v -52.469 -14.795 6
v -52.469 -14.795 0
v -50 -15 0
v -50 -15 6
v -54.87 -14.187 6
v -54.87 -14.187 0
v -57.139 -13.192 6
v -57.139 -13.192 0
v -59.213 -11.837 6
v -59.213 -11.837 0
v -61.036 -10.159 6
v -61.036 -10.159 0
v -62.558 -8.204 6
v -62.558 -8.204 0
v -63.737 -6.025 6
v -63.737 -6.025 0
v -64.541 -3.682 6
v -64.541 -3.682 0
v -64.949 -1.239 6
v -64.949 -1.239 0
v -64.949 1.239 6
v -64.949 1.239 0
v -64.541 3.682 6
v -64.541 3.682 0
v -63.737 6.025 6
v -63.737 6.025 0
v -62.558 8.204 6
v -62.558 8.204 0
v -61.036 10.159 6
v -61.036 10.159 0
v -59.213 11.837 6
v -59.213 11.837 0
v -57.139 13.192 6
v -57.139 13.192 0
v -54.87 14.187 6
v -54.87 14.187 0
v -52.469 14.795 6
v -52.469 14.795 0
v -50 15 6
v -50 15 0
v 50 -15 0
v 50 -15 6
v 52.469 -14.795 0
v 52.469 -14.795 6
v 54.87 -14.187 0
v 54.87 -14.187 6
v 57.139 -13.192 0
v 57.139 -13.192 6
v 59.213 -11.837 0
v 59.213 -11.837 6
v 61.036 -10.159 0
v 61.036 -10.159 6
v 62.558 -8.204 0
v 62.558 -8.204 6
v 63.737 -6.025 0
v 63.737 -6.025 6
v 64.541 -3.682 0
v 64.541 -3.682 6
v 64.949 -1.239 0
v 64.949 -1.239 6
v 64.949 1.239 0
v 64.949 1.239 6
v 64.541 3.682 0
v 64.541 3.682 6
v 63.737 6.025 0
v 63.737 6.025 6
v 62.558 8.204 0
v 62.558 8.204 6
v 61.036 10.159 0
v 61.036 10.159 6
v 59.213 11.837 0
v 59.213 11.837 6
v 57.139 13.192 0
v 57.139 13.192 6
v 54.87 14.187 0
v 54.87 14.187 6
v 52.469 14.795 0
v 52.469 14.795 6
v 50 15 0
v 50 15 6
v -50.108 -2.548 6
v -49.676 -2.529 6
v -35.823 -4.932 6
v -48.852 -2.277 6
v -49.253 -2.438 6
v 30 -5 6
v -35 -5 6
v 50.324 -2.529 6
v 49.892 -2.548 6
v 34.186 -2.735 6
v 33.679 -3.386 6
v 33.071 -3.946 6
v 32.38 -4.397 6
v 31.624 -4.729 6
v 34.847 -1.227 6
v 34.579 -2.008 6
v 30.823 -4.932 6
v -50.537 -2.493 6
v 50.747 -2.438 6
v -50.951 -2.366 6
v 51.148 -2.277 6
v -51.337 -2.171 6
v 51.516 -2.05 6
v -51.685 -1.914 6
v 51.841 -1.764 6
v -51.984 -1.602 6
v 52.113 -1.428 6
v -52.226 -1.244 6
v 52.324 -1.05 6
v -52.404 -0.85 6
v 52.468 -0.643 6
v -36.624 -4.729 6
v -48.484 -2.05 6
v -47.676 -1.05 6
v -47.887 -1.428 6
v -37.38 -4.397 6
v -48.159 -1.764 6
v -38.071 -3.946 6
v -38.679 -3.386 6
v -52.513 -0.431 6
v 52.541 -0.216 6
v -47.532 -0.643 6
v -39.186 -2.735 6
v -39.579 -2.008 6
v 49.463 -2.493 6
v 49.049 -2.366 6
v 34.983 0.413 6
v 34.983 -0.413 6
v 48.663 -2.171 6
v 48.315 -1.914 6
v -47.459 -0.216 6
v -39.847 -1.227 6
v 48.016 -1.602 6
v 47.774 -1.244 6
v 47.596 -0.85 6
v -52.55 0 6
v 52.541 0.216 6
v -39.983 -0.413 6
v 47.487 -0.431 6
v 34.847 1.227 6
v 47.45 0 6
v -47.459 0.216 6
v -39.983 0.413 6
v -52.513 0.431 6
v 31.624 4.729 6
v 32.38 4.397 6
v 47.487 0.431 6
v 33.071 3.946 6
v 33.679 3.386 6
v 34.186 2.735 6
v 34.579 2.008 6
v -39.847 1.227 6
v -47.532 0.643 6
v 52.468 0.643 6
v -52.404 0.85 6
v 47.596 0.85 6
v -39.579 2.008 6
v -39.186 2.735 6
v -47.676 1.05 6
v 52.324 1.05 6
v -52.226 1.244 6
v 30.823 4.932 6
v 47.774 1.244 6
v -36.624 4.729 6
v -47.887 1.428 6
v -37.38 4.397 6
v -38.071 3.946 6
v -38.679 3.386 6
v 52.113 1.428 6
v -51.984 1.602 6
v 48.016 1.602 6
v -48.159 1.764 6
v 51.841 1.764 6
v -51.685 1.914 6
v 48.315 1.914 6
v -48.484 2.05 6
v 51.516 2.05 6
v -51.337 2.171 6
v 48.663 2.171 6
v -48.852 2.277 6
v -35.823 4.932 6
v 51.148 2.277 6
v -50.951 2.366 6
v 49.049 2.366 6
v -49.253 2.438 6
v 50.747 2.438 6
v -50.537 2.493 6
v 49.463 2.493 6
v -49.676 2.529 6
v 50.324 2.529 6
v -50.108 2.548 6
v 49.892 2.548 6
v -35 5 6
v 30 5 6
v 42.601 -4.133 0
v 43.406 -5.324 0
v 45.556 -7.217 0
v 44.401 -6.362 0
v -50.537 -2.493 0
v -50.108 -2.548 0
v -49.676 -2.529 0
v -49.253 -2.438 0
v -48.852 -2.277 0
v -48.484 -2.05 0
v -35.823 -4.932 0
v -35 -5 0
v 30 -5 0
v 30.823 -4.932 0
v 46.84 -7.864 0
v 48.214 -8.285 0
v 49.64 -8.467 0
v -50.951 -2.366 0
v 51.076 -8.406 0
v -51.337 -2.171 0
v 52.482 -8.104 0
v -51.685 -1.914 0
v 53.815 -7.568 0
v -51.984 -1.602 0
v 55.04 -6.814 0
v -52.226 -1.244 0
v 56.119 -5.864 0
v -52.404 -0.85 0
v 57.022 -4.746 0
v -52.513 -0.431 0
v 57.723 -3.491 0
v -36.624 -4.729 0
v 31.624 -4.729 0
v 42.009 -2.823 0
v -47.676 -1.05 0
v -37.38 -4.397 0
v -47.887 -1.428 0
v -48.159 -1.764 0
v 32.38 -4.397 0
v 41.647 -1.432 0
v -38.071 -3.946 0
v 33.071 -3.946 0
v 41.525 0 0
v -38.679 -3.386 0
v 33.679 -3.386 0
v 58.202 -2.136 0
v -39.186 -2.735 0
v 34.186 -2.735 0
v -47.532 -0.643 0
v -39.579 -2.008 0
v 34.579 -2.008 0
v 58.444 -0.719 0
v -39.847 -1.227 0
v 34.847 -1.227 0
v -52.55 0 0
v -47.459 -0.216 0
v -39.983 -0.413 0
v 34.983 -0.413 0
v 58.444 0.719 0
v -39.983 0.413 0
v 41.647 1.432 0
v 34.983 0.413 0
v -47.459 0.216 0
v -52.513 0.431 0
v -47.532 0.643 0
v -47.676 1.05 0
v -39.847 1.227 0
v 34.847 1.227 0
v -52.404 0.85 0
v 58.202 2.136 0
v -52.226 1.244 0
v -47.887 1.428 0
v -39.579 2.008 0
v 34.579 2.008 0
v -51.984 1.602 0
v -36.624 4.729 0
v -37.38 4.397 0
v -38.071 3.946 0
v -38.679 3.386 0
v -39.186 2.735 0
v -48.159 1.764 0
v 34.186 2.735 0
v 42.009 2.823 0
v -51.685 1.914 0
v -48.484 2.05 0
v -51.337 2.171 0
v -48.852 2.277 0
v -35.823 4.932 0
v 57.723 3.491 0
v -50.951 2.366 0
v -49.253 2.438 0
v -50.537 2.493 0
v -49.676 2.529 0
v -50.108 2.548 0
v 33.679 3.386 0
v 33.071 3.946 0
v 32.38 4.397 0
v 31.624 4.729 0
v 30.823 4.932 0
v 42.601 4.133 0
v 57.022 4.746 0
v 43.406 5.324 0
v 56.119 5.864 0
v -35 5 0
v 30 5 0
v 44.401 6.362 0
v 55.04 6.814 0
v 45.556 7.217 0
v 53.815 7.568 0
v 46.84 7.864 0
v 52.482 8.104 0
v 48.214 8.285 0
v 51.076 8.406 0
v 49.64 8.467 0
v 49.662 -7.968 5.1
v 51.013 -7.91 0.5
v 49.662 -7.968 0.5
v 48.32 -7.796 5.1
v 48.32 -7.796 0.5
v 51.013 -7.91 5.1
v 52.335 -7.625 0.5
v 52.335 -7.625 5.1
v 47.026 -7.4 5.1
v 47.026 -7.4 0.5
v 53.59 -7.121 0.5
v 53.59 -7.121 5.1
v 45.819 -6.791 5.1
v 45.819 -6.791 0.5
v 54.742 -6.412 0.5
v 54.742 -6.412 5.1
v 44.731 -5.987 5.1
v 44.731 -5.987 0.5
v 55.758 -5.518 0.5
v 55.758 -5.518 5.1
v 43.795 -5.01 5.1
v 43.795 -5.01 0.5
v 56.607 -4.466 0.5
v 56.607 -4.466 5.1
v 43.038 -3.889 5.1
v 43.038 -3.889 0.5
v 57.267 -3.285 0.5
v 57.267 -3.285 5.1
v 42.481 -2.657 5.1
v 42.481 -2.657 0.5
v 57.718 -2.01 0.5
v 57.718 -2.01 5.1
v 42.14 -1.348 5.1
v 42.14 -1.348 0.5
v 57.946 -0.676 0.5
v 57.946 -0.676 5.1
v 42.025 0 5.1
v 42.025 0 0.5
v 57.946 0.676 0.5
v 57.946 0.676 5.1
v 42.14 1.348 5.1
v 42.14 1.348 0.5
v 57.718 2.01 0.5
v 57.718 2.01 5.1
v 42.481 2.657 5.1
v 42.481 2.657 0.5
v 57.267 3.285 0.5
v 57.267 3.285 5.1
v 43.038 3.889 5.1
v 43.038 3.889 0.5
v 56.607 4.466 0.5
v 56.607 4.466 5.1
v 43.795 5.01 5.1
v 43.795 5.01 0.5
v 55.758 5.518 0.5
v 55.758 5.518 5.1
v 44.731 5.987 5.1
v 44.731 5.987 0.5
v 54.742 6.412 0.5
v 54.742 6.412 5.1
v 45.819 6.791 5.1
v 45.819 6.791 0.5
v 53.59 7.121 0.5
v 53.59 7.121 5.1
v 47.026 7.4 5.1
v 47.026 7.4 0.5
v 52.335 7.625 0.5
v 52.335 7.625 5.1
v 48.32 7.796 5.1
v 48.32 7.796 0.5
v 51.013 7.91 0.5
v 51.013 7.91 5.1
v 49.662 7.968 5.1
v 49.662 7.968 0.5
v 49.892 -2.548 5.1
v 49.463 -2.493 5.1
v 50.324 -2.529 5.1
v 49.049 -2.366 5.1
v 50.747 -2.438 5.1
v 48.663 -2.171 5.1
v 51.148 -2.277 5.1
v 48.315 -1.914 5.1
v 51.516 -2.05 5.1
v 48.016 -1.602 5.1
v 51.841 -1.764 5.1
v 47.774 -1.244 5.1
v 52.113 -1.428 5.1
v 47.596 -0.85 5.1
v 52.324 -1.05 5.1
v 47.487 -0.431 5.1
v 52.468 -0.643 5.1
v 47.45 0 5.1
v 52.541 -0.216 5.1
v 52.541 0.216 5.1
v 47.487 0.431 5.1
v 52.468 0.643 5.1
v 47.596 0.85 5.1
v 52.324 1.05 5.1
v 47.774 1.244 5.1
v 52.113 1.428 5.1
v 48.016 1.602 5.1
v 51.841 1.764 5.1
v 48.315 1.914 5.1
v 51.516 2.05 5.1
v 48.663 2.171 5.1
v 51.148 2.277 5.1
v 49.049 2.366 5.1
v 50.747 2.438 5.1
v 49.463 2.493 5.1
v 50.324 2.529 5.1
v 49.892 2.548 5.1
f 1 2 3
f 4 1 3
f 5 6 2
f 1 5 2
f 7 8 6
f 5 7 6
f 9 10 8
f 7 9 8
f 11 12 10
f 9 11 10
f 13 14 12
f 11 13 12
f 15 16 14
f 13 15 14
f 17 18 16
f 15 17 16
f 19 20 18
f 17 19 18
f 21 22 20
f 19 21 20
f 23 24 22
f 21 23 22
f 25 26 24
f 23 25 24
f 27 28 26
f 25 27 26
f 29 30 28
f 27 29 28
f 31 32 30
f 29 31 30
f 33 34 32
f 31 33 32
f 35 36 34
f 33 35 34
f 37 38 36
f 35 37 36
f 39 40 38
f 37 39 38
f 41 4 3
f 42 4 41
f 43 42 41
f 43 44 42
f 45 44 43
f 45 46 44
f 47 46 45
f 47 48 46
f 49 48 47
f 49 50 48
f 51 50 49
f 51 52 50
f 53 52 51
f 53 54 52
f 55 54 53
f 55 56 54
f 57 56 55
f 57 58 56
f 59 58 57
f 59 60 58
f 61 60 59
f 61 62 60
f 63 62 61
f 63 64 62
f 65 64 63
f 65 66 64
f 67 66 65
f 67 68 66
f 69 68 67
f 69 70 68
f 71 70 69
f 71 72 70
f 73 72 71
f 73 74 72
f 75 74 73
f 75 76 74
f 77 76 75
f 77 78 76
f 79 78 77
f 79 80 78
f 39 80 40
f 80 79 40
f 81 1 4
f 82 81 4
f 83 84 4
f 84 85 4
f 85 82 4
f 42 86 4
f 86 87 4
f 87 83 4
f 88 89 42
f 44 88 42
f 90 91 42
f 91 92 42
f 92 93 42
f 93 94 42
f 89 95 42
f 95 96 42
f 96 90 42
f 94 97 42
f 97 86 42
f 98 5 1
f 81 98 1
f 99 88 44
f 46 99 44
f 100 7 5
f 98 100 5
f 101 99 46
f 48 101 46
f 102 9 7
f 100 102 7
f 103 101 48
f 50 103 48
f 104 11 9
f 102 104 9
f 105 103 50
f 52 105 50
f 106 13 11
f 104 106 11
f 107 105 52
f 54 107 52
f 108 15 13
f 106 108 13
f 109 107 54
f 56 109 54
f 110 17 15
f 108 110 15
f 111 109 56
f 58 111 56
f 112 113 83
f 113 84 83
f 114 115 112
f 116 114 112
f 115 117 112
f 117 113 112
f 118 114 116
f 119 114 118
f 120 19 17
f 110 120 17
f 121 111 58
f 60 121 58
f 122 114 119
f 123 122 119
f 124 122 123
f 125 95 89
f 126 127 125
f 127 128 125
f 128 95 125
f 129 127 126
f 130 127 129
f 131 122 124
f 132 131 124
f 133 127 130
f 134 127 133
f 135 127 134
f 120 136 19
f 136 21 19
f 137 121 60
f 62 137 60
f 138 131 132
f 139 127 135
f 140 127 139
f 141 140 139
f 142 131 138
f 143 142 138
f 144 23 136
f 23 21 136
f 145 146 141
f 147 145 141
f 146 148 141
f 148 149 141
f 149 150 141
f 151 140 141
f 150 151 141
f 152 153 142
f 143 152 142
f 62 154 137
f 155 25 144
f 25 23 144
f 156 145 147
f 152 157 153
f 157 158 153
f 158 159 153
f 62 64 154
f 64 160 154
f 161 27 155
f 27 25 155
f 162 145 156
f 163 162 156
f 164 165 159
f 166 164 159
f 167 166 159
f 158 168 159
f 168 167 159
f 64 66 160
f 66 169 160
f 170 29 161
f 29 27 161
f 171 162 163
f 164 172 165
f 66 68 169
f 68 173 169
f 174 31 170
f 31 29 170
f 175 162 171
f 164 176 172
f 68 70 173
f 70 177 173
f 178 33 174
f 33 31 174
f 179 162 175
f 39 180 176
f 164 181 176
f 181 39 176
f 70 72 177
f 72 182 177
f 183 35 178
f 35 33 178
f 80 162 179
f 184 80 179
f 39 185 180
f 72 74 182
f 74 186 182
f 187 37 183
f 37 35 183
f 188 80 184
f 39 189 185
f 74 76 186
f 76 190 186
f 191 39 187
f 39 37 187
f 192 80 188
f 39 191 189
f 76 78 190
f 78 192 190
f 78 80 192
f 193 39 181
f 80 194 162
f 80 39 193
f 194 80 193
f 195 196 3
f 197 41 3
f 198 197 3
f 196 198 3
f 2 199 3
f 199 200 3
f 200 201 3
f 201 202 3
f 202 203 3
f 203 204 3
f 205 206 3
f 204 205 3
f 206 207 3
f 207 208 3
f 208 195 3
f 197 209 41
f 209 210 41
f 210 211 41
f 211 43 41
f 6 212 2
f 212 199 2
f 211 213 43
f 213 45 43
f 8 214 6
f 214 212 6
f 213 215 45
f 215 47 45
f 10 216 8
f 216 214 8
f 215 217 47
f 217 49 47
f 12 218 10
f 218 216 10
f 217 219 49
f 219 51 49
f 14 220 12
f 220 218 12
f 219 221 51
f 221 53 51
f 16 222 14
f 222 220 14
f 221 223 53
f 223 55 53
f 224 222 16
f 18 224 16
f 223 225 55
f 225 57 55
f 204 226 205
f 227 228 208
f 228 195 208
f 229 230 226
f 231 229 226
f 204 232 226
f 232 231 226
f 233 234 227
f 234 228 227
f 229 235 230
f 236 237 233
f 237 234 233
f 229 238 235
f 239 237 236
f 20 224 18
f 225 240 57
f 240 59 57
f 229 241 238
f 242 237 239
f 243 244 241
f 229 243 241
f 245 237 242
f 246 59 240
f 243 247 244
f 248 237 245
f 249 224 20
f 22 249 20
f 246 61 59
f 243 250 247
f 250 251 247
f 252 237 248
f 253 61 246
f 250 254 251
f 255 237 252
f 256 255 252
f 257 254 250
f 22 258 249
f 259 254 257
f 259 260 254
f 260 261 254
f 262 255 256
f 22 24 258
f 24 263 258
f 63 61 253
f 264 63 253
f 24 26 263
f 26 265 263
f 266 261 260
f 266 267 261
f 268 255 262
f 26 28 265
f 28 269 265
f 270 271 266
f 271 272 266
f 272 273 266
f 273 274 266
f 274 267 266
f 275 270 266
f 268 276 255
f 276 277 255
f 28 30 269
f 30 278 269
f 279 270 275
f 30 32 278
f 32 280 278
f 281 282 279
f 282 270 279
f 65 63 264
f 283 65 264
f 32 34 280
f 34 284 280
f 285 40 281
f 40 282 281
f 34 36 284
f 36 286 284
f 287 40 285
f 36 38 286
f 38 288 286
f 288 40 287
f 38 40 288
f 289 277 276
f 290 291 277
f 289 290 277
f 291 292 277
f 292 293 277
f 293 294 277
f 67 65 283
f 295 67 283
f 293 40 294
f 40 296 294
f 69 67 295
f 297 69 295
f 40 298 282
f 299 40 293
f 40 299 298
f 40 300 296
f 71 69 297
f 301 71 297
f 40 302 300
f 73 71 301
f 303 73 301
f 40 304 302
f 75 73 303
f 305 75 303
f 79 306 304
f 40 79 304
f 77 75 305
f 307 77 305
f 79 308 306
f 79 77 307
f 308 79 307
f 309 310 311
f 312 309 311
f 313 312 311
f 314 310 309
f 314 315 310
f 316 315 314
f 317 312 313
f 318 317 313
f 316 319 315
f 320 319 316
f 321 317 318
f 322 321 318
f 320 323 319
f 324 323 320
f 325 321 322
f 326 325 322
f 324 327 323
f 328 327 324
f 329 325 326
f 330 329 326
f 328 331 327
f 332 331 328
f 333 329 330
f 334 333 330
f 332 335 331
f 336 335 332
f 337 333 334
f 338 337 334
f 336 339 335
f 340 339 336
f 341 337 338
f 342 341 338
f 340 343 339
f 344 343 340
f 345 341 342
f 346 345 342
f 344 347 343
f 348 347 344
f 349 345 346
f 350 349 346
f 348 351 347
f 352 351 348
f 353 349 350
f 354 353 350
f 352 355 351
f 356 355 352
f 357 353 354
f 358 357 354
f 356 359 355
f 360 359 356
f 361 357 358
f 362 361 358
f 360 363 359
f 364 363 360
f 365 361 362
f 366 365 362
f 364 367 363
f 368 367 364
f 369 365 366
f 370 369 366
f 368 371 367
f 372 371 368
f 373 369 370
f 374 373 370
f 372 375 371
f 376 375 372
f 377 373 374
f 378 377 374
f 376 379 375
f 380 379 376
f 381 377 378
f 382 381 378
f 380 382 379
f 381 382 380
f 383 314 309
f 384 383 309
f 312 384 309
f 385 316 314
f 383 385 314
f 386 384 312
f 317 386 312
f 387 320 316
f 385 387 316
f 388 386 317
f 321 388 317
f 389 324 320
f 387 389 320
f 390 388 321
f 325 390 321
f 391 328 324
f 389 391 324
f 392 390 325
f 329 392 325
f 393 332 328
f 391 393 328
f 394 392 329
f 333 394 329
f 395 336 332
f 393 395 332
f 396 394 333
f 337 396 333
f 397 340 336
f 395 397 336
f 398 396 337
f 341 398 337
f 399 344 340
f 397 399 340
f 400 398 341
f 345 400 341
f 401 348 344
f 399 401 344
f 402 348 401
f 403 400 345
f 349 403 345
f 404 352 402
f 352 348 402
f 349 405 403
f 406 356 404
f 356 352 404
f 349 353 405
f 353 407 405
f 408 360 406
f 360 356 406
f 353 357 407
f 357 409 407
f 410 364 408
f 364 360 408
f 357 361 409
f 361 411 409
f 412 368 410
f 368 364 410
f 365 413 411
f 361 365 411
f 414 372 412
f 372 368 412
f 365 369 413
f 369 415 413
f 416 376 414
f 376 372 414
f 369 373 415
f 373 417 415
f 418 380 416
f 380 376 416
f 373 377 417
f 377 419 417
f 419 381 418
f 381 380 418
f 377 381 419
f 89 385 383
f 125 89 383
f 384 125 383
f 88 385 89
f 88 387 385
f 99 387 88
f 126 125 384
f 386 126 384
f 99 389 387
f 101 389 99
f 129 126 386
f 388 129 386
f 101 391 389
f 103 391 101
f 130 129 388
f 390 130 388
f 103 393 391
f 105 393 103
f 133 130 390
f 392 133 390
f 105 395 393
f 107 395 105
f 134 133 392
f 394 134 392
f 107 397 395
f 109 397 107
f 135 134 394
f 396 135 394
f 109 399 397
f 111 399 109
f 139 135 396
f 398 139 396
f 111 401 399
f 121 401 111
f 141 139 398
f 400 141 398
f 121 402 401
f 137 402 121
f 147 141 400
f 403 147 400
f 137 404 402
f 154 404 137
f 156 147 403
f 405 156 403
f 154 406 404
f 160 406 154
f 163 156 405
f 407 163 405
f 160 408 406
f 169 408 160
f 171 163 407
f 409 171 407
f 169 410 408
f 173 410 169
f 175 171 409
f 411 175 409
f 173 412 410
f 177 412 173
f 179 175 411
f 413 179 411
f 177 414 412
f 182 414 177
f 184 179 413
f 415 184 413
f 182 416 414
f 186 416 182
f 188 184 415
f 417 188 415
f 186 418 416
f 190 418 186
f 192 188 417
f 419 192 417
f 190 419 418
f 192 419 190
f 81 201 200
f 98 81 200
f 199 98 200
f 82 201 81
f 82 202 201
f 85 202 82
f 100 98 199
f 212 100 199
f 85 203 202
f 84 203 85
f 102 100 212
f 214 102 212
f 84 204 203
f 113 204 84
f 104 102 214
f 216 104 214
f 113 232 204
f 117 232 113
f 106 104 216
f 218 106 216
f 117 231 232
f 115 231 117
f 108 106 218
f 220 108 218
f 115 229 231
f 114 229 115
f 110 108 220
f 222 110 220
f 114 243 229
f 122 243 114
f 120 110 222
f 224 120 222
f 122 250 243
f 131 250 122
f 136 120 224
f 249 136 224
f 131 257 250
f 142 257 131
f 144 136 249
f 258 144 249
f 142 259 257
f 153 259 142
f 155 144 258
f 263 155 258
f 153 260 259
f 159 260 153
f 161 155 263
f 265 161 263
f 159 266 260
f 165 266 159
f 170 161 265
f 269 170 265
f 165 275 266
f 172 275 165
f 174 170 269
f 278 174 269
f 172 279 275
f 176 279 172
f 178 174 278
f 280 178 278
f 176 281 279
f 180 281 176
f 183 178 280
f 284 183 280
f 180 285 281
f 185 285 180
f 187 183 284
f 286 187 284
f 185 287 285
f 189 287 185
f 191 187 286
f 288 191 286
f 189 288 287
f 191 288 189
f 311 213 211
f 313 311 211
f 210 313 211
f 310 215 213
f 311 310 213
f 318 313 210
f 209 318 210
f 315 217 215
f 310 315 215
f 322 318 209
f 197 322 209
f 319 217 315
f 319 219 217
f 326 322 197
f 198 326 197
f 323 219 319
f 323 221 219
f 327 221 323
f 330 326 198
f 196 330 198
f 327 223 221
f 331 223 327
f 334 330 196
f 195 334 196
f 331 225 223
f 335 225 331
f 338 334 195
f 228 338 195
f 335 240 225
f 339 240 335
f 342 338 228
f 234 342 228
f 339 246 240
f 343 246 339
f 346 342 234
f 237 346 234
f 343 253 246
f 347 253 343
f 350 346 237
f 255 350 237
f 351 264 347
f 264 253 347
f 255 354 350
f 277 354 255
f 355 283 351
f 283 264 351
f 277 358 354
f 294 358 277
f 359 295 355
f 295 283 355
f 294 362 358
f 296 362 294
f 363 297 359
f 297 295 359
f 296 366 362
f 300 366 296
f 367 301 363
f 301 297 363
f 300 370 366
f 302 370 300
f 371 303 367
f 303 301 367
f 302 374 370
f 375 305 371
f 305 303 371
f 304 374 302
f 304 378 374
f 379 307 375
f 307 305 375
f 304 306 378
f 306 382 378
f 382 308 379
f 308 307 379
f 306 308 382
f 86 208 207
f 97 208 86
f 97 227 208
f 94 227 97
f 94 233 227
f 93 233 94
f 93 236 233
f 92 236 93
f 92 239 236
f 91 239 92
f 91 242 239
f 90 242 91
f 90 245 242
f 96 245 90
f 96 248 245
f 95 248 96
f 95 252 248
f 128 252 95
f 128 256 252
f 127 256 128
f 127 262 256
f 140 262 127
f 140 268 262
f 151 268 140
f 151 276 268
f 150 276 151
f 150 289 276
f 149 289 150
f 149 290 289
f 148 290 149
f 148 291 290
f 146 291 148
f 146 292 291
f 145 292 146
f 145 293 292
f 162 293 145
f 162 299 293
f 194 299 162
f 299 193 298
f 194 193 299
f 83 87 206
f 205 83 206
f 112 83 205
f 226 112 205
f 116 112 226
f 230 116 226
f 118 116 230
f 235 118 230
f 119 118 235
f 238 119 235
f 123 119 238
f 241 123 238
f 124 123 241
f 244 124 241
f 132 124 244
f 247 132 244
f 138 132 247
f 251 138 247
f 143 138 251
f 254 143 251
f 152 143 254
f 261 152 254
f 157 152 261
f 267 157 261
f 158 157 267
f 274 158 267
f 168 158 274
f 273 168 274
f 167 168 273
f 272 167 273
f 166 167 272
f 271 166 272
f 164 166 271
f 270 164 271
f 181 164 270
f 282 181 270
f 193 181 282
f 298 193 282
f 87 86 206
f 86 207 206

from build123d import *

# Parameters (mm, degrees)
BOSS_EXTRUDE1_DEPTH = 6
SKETCH9_R           = 7.975
CUT_EXTRUDE5_DEPTH  = 5.1
SKETCH10_R          = 2.55
CUT_EXTRUDE6_DEPTH  = 1.9
SKETCH11_R          = 2.55
CUT_EXTRUDE7_DEPTH  = 7
CHAMFER1_SIZE       = 0.5
CUT_EXTRUDE8_DEPTH  = 7


with BuildPart() as part:
    # Sketch4 → Boss-Extrude1 (new body)
    with BuildSketch(Plane.XY):
        with BuildLine():
            Line((-50, 15), (50, 15))
            ThreePointArc((50, 15), (65, 0), (50, -15))
            Line((50, -15), (-50, -15))
            ThreePointArc((-50, -15), (-65, 0), (-50, 15))
        make_face()
    extrude(amount=BOSS_EXTRUDE1_DEPTH)

    # Sketch9 → Cut-Extrude5 (cut)
    with BuildSketch(Plane(origin=(0, 0, 0), x_dir=(-1, 0, 0), z_dir=(0, 0, -1))):
        with Locations((-50, 0)):
            Circle(SKETCH9_R)
    extrude(amount=-CUT_EXTRUDE5_DEPTH, mode=Mode.SUBTRACT)

    # Sketch10 → Cut-Extrude6 (cut, through all)
    with BuildSketch(Plane(origin=(0, 0, 5.1), x_dir=(-1, 0, 0), z_dir=(0, 0, -1))):
        with Locations((-50, 0)):
            Circle(SKETCH10_R)
    extrude(amount=-CUT_EXTRUDE6_DEPTH, mode=Mode.SUBTRACT)

    # Sketch11 → Cut-Extrude7 (cut, through all)
    with BuildSketch(Plane(origin=(0, 0, 0), x_dir=(-1, 0, 0), z_dir=(0, 0, -1))):
        with Locations((50, 0)):
            Circle(SKETCH11_R)
    extrude(amount=-CUT_EXTRUDE7_DEPTH, mode=Mode.SUBTRACT)

    # Chamfer1
    chamfer1_edges = [part.edges().sort_by_distance(p)[0] for p in [
        (57.975, 0, 0),
    ]]
    chamfer(chamfer1_edges, length=CHAMFER1_SIZE)

    # Sketch12 → Cut-Extrude8 (cut, through all)
    with BuildSketch(Plane(origin=(0, 0, 0), x_dir=(-1, 0, 0), z_dir=(0, 0, -1))):
        with BuildLine():
            Line((-30, 5), (35, 5))
            ThreePointArc((35, 5), (40, 0), (35, -5))
            Line((35, -5), (-30, -5))
            ThreePointArc((-30, -5), (-35, 0), (-30, 5))
        make_face()
    extrude(amount=-CUT_EXTRUDE8_DEPTH, mode=Mode.SUBTRACT)


solid = part.part
